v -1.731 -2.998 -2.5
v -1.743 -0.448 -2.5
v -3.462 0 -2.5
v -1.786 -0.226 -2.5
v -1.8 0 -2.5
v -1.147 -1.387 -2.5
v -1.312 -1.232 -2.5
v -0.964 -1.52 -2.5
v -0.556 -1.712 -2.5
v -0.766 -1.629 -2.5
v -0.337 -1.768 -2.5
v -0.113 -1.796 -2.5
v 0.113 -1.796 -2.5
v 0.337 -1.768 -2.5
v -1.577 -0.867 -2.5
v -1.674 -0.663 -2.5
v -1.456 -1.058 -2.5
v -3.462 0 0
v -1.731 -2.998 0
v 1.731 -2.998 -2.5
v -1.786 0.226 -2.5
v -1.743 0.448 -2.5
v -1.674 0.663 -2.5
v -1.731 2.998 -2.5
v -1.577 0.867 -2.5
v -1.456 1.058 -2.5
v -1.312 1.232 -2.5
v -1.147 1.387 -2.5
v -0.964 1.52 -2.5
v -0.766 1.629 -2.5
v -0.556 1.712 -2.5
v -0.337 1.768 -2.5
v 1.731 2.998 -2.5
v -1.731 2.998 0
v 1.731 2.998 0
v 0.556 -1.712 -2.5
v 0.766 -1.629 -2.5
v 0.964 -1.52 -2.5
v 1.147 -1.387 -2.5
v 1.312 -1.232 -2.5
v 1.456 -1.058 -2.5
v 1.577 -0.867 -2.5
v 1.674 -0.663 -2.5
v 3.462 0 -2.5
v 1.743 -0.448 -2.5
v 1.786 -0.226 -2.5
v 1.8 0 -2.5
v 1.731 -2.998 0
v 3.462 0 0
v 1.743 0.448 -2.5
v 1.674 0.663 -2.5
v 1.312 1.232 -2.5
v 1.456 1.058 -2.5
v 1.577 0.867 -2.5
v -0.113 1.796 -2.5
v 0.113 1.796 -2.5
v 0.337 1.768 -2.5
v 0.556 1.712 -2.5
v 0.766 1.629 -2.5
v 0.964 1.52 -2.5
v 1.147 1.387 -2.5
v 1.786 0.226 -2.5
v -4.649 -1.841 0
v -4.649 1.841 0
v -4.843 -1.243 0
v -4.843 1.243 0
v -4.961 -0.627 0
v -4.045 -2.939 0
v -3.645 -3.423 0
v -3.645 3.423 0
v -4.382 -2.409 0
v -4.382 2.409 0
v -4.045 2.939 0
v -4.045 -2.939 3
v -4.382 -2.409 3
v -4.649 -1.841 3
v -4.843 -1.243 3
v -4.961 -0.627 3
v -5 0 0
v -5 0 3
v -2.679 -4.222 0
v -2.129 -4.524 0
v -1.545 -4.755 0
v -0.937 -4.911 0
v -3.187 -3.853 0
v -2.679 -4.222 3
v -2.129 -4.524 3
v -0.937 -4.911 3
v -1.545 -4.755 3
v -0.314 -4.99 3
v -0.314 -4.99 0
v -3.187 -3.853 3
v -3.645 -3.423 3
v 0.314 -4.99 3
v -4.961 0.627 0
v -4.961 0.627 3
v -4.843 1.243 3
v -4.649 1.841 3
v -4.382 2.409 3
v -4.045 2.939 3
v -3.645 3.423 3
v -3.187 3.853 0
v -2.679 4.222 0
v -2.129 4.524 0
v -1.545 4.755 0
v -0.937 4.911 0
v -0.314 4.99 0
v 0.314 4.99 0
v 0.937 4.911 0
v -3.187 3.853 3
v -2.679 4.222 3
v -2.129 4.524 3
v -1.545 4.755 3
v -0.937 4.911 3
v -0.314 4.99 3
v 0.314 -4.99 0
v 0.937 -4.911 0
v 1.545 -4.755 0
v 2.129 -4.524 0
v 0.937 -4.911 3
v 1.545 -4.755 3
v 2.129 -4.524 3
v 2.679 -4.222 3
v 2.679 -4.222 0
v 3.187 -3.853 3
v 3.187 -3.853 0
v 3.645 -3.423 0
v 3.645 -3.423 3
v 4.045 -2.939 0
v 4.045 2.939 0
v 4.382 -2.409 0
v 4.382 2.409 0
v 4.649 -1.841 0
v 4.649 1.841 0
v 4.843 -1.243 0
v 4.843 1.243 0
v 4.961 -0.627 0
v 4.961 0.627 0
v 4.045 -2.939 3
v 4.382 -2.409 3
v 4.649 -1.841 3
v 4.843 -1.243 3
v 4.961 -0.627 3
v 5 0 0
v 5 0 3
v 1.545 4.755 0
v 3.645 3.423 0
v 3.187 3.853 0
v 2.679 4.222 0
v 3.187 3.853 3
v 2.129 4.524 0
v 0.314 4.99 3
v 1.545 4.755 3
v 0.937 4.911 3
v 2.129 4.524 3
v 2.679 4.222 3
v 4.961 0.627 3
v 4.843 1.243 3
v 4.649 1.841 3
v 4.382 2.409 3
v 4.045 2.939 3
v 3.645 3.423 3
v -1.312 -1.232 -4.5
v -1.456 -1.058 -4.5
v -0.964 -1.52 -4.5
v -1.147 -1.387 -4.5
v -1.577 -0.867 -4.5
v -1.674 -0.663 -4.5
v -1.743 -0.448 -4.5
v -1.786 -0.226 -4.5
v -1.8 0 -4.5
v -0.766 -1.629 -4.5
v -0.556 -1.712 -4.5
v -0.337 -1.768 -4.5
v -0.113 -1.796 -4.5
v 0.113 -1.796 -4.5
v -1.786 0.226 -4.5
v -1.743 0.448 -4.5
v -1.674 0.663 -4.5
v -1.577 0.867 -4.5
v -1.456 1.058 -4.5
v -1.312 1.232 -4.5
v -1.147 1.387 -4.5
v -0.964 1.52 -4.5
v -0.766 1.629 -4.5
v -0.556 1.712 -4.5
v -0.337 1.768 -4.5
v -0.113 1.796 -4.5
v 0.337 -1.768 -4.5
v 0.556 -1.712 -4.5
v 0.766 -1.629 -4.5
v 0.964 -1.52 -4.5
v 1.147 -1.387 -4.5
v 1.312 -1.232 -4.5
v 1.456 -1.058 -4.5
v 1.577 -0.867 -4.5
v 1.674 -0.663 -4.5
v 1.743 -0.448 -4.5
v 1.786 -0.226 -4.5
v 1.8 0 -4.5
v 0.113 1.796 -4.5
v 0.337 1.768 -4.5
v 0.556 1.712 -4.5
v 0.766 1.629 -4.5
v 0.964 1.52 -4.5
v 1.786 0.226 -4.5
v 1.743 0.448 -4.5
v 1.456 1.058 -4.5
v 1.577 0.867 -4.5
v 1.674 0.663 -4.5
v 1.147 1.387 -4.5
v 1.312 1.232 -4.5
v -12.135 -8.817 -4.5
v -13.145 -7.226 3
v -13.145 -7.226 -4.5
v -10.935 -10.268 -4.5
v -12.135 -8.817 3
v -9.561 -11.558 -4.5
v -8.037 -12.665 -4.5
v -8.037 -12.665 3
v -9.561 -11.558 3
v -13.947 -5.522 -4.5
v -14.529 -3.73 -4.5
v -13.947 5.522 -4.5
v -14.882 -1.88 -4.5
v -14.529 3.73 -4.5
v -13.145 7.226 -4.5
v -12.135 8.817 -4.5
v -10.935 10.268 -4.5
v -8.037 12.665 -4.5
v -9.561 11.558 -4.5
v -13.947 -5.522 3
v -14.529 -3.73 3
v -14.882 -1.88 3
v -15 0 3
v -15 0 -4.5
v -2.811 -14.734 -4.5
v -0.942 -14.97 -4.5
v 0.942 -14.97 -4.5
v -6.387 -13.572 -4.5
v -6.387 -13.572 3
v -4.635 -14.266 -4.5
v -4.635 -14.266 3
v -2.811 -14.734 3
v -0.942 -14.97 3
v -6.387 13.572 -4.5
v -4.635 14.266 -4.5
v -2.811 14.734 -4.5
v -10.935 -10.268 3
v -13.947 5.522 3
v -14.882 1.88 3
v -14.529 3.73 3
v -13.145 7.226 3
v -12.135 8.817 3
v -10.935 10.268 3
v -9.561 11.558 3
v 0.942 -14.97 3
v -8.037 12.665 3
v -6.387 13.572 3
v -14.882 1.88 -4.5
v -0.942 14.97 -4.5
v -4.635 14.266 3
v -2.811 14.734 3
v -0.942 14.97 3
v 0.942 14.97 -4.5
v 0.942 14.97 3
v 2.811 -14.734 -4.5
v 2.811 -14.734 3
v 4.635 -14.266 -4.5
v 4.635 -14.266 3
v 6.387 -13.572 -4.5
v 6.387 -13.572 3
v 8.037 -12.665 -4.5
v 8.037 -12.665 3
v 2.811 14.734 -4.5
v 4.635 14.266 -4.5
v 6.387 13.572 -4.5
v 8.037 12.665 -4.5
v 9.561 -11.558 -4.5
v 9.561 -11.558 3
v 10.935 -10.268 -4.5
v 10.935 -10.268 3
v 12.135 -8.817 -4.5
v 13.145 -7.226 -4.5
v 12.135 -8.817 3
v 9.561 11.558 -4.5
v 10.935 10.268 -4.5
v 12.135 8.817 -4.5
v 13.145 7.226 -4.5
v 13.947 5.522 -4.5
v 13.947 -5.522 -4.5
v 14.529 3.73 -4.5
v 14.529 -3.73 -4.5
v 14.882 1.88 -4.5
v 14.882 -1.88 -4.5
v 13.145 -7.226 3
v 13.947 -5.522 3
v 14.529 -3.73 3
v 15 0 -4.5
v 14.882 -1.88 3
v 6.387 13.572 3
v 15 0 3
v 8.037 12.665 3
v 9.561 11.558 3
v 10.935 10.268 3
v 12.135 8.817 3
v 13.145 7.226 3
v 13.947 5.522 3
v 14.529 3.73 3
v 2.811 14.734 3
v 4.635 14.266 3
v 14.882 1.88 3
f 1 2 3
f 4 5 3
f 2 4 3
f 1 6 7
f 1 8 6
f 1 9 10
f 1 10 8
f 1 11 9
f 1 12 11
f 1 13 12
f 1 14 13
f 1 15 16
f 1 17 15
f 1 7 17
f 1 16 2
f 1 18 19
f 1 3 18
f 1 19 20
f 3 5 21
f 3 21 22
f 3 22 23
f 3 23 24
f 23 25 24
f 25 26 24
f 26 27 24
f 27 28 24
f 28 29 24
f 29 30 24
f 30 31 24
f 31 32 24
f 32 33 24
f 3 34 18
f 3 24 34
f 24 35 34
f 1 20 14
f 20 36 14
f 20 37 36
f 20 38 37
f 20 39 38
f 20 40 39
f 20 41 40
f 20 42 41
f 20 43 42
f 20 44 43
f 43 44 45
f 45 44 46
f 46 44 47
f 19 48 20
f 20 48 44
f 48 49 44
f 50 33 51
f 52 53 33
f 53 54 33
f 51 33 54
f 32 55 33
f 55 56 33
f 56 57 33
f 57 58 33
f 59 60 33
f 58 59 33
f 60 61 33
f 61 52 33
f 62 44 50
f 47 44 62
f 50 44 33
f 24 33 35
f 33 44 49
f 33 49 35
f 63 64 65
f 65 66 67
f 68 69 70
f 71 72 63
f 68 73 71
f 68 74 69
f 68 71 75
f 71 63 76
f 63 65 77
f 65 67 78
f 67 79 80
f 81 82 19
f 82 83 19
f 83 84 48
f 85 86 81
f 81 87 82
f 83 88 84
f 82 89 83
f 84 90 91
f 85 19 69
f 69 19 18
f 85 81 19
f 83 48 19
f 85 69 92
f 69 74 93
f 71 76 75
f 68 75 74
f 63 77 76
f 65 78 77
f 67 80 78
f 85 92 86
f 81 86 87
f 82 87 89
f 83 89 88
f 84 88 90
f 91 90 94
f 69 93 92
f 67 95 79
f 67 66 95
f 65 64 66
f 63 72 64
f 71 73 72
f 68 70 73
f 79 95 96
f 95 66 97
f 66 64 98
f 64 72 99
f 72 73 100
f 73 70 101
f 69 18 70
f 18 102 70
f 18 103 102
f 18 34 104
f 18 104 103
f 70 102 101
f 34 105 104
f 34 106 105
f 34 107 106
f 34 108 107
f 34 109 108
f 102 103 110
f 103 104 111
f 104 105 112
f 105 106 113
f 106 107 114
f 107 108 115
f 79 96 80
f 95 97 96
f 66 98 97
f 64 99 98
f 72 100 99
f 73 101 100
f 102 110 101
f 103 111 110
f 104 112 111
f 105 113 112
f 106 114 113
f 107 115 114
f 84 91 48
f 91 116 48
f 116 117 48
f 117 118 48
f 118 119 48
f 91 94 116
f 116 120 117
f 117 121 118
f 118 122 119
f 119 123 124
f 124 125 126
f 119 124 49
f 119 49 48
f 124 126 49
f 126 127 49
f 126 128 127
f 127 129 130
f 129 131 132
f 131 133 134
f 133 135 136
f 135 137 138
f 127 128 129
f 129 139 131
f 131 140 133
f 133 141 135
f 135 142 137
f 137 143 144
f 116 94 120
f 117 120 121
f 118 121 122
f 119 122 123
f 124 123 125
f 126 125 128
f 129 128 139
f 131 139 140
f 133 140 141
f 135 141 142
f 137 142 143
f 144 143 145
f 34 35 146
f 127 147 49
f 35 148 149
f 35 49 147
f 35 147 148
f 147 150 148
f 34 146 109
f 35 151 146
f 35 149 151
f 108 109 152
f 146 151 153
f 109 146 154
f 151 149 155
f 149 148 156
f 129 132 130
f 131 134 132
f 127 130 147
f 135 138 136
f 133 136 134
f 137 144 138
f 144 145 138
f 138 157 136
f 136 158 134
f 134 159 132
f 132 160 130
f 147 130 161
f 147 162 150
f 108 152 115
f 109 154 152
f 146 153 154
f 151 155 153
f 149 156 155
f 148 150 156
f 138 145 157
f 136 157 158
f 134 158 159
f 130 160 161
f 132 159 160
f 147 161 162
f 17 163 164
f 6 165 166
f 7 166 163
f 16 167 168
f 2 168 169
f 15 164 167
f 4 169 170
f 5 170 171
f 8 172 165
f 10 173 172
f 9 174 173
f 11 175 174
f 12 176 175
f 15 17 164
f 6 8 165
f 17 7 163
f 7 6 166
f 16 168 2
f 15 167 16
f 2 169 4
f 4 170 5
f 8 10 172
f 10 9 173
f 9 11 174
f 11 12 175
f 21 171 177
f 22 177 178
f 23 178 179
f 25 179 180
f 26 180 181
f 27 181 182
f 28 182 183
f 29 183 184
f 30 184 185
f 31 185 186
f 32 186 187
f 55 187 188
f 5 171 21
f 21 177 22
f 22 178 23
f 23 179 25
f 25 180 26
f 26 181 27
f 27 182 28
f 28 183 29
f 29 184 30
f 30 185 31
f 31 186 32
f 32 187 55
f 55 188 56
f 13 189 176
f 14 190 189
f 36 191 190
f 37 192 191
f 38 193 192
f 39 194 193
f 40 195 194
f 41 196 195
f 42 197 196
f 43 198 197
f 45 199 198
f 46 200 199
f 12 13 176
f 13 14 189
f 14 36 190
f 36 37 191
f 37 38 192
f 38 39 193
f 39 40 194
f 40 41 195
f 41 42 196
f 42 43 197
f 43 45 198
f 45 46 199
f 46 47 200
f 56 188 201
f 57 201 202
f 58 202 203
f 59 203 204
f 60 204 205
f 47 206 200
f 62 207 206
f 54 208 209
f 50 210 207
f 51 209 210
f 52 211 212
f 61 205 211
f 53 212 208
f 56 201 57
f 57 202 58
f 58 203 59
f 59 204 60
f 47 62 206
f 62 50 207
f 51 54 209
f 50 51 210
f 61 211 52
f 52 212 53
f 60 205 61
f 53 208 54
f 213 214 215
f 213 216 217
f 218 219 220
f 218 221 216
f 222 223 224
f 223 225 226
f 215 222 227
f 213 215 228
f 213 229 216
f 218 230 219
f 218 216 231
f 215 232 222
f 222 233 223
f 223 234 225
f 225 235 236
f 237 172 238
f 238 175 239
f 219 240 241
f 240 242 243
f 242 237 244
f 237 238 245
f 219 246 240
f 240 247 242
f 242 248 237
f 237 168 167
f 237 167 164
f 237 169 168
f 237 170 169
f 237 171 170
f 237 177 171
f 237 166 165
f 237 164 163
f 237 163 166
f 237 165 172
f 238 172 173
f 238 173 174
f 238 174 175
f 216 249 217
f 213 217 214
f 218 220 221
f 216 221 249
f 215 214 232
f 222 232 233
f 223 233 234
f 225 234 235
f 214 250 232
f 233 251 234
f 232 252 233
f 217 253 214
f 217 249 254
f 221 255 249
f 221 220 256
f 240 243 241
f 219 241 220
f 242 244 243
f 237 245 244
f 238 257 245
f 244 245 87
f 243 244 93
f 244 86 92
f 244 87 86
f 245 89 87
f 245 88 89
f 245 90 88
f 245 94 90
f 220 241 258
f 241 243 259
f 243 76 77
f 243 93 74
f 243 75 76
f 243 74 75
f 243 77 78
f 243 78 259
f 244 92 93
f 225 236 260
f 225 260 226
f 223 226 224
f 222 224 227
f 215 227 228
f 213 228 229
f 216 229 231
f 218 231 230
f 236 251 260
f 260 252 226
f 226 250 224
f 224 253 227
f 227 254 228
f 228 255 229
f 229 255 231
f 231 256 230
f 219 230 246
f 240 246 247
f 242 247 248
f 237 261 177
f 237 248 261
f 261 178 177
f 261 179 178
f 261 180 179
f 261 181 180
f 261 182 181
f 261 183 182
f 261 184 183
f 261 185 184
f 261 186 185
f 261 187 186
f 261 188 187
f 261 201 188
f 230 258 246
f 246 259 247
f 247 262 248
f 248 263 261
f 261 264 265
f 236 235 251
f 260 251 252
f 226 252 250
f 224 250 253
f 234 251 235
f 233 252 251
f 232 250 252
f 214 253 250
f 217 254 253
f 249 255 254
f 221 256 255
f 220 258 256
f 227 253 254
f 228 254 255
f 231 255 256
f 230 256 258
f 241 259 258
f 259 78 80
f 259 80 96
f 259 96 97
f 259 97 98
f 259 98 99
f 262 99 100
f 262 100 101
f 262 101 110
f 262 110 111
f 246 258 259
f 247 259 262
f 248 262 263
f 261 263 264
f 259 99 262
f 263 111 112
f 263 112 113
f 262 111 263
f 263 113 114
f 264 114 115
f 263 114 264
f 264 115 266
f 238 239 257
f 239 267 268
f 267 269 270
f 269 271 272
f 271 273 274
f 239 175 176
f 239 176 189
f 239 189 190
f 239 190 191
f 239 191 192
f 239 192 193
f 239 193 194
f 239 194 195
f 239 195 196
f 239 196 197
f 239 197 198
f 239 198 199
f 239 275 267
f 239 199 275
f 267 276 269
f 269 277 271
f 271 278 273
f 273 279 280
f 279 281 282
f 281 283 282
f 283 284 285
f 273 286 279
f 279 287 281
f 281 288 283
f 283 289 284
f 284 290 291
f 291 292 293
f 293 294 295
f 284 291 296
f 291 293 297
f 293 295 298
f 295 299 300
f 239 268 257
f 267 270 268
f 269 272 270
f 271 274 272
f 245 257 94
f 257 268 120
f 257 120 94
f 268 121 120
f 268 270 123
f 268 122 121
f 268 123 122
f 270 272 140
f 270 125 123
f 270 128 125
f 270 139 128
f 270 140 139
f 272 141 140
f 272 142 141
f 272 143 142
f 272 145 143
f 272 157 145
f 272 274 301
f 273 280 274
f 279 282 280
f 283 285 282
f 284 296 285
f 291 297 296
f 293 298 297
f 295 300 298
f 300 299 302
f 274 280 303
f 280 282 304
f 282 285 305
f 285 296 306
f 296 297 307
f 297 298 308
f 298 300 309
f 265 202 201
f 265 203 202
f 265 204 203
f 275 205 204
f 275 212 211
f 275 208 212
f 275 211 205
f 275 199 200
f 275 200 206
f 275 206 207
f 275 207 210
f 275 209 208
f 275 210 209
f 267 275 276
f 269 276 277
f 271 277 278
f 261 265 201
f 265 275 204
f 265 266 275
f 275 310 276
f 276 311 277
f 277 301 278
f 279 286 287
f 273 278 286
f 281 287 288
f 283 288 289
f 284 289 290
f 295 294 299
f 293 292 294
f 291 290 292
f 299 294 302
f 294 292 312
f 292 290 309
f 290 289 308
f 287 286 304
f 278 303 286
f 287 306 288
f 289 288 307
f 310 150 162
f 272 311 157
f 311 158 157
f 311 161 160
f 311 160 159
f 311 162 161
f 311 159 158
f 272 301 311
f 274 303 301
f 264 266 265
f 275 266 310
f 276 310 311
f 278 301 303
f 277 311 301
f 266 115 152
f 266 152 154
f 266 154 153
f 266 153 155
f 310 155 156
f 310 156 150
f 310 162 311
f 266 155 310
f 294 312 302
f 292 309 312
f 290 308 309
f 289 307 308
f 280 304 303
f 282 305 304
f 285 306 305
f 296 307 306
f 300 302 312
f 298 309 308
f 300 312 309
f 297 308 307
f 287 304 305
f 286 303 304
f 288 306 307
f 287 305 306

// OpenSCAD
$fn = 50;

difference() {
	union() {
		translate(v = [0, 0, -4.5]) {
			cylinder(h = 7.5, r = 15.0);
		}
	}
	union() {
		translate(v = [0, 0, 0]) {
			rotate(a = [0, 0, 0]) {
				difference() {
					union() {
						translate(v = [0, 0, -2.5]) {
							linear_extrude(height = 2.5) {
								polygon(points = [[3.4619999999999997, 0.0], [1.7310000000000003, 2.9981799479017264], [-1.7309999999999992, 2.9981799479017264], [-3.4619999999999997, 4.2397272186481365e-16], [-1.7310000000000014, -2.998179947901726], [1.7309999999999977, -2.9981799479017277]]);
							}
						}
					}
					union();
				}
			}
		}
		#cylinder(h = 3, r = 5.0);
		#translate(v = [0, 0, -100.0]) {
			cylinder(h = 200, r = 1.8);
		}
	}
}
